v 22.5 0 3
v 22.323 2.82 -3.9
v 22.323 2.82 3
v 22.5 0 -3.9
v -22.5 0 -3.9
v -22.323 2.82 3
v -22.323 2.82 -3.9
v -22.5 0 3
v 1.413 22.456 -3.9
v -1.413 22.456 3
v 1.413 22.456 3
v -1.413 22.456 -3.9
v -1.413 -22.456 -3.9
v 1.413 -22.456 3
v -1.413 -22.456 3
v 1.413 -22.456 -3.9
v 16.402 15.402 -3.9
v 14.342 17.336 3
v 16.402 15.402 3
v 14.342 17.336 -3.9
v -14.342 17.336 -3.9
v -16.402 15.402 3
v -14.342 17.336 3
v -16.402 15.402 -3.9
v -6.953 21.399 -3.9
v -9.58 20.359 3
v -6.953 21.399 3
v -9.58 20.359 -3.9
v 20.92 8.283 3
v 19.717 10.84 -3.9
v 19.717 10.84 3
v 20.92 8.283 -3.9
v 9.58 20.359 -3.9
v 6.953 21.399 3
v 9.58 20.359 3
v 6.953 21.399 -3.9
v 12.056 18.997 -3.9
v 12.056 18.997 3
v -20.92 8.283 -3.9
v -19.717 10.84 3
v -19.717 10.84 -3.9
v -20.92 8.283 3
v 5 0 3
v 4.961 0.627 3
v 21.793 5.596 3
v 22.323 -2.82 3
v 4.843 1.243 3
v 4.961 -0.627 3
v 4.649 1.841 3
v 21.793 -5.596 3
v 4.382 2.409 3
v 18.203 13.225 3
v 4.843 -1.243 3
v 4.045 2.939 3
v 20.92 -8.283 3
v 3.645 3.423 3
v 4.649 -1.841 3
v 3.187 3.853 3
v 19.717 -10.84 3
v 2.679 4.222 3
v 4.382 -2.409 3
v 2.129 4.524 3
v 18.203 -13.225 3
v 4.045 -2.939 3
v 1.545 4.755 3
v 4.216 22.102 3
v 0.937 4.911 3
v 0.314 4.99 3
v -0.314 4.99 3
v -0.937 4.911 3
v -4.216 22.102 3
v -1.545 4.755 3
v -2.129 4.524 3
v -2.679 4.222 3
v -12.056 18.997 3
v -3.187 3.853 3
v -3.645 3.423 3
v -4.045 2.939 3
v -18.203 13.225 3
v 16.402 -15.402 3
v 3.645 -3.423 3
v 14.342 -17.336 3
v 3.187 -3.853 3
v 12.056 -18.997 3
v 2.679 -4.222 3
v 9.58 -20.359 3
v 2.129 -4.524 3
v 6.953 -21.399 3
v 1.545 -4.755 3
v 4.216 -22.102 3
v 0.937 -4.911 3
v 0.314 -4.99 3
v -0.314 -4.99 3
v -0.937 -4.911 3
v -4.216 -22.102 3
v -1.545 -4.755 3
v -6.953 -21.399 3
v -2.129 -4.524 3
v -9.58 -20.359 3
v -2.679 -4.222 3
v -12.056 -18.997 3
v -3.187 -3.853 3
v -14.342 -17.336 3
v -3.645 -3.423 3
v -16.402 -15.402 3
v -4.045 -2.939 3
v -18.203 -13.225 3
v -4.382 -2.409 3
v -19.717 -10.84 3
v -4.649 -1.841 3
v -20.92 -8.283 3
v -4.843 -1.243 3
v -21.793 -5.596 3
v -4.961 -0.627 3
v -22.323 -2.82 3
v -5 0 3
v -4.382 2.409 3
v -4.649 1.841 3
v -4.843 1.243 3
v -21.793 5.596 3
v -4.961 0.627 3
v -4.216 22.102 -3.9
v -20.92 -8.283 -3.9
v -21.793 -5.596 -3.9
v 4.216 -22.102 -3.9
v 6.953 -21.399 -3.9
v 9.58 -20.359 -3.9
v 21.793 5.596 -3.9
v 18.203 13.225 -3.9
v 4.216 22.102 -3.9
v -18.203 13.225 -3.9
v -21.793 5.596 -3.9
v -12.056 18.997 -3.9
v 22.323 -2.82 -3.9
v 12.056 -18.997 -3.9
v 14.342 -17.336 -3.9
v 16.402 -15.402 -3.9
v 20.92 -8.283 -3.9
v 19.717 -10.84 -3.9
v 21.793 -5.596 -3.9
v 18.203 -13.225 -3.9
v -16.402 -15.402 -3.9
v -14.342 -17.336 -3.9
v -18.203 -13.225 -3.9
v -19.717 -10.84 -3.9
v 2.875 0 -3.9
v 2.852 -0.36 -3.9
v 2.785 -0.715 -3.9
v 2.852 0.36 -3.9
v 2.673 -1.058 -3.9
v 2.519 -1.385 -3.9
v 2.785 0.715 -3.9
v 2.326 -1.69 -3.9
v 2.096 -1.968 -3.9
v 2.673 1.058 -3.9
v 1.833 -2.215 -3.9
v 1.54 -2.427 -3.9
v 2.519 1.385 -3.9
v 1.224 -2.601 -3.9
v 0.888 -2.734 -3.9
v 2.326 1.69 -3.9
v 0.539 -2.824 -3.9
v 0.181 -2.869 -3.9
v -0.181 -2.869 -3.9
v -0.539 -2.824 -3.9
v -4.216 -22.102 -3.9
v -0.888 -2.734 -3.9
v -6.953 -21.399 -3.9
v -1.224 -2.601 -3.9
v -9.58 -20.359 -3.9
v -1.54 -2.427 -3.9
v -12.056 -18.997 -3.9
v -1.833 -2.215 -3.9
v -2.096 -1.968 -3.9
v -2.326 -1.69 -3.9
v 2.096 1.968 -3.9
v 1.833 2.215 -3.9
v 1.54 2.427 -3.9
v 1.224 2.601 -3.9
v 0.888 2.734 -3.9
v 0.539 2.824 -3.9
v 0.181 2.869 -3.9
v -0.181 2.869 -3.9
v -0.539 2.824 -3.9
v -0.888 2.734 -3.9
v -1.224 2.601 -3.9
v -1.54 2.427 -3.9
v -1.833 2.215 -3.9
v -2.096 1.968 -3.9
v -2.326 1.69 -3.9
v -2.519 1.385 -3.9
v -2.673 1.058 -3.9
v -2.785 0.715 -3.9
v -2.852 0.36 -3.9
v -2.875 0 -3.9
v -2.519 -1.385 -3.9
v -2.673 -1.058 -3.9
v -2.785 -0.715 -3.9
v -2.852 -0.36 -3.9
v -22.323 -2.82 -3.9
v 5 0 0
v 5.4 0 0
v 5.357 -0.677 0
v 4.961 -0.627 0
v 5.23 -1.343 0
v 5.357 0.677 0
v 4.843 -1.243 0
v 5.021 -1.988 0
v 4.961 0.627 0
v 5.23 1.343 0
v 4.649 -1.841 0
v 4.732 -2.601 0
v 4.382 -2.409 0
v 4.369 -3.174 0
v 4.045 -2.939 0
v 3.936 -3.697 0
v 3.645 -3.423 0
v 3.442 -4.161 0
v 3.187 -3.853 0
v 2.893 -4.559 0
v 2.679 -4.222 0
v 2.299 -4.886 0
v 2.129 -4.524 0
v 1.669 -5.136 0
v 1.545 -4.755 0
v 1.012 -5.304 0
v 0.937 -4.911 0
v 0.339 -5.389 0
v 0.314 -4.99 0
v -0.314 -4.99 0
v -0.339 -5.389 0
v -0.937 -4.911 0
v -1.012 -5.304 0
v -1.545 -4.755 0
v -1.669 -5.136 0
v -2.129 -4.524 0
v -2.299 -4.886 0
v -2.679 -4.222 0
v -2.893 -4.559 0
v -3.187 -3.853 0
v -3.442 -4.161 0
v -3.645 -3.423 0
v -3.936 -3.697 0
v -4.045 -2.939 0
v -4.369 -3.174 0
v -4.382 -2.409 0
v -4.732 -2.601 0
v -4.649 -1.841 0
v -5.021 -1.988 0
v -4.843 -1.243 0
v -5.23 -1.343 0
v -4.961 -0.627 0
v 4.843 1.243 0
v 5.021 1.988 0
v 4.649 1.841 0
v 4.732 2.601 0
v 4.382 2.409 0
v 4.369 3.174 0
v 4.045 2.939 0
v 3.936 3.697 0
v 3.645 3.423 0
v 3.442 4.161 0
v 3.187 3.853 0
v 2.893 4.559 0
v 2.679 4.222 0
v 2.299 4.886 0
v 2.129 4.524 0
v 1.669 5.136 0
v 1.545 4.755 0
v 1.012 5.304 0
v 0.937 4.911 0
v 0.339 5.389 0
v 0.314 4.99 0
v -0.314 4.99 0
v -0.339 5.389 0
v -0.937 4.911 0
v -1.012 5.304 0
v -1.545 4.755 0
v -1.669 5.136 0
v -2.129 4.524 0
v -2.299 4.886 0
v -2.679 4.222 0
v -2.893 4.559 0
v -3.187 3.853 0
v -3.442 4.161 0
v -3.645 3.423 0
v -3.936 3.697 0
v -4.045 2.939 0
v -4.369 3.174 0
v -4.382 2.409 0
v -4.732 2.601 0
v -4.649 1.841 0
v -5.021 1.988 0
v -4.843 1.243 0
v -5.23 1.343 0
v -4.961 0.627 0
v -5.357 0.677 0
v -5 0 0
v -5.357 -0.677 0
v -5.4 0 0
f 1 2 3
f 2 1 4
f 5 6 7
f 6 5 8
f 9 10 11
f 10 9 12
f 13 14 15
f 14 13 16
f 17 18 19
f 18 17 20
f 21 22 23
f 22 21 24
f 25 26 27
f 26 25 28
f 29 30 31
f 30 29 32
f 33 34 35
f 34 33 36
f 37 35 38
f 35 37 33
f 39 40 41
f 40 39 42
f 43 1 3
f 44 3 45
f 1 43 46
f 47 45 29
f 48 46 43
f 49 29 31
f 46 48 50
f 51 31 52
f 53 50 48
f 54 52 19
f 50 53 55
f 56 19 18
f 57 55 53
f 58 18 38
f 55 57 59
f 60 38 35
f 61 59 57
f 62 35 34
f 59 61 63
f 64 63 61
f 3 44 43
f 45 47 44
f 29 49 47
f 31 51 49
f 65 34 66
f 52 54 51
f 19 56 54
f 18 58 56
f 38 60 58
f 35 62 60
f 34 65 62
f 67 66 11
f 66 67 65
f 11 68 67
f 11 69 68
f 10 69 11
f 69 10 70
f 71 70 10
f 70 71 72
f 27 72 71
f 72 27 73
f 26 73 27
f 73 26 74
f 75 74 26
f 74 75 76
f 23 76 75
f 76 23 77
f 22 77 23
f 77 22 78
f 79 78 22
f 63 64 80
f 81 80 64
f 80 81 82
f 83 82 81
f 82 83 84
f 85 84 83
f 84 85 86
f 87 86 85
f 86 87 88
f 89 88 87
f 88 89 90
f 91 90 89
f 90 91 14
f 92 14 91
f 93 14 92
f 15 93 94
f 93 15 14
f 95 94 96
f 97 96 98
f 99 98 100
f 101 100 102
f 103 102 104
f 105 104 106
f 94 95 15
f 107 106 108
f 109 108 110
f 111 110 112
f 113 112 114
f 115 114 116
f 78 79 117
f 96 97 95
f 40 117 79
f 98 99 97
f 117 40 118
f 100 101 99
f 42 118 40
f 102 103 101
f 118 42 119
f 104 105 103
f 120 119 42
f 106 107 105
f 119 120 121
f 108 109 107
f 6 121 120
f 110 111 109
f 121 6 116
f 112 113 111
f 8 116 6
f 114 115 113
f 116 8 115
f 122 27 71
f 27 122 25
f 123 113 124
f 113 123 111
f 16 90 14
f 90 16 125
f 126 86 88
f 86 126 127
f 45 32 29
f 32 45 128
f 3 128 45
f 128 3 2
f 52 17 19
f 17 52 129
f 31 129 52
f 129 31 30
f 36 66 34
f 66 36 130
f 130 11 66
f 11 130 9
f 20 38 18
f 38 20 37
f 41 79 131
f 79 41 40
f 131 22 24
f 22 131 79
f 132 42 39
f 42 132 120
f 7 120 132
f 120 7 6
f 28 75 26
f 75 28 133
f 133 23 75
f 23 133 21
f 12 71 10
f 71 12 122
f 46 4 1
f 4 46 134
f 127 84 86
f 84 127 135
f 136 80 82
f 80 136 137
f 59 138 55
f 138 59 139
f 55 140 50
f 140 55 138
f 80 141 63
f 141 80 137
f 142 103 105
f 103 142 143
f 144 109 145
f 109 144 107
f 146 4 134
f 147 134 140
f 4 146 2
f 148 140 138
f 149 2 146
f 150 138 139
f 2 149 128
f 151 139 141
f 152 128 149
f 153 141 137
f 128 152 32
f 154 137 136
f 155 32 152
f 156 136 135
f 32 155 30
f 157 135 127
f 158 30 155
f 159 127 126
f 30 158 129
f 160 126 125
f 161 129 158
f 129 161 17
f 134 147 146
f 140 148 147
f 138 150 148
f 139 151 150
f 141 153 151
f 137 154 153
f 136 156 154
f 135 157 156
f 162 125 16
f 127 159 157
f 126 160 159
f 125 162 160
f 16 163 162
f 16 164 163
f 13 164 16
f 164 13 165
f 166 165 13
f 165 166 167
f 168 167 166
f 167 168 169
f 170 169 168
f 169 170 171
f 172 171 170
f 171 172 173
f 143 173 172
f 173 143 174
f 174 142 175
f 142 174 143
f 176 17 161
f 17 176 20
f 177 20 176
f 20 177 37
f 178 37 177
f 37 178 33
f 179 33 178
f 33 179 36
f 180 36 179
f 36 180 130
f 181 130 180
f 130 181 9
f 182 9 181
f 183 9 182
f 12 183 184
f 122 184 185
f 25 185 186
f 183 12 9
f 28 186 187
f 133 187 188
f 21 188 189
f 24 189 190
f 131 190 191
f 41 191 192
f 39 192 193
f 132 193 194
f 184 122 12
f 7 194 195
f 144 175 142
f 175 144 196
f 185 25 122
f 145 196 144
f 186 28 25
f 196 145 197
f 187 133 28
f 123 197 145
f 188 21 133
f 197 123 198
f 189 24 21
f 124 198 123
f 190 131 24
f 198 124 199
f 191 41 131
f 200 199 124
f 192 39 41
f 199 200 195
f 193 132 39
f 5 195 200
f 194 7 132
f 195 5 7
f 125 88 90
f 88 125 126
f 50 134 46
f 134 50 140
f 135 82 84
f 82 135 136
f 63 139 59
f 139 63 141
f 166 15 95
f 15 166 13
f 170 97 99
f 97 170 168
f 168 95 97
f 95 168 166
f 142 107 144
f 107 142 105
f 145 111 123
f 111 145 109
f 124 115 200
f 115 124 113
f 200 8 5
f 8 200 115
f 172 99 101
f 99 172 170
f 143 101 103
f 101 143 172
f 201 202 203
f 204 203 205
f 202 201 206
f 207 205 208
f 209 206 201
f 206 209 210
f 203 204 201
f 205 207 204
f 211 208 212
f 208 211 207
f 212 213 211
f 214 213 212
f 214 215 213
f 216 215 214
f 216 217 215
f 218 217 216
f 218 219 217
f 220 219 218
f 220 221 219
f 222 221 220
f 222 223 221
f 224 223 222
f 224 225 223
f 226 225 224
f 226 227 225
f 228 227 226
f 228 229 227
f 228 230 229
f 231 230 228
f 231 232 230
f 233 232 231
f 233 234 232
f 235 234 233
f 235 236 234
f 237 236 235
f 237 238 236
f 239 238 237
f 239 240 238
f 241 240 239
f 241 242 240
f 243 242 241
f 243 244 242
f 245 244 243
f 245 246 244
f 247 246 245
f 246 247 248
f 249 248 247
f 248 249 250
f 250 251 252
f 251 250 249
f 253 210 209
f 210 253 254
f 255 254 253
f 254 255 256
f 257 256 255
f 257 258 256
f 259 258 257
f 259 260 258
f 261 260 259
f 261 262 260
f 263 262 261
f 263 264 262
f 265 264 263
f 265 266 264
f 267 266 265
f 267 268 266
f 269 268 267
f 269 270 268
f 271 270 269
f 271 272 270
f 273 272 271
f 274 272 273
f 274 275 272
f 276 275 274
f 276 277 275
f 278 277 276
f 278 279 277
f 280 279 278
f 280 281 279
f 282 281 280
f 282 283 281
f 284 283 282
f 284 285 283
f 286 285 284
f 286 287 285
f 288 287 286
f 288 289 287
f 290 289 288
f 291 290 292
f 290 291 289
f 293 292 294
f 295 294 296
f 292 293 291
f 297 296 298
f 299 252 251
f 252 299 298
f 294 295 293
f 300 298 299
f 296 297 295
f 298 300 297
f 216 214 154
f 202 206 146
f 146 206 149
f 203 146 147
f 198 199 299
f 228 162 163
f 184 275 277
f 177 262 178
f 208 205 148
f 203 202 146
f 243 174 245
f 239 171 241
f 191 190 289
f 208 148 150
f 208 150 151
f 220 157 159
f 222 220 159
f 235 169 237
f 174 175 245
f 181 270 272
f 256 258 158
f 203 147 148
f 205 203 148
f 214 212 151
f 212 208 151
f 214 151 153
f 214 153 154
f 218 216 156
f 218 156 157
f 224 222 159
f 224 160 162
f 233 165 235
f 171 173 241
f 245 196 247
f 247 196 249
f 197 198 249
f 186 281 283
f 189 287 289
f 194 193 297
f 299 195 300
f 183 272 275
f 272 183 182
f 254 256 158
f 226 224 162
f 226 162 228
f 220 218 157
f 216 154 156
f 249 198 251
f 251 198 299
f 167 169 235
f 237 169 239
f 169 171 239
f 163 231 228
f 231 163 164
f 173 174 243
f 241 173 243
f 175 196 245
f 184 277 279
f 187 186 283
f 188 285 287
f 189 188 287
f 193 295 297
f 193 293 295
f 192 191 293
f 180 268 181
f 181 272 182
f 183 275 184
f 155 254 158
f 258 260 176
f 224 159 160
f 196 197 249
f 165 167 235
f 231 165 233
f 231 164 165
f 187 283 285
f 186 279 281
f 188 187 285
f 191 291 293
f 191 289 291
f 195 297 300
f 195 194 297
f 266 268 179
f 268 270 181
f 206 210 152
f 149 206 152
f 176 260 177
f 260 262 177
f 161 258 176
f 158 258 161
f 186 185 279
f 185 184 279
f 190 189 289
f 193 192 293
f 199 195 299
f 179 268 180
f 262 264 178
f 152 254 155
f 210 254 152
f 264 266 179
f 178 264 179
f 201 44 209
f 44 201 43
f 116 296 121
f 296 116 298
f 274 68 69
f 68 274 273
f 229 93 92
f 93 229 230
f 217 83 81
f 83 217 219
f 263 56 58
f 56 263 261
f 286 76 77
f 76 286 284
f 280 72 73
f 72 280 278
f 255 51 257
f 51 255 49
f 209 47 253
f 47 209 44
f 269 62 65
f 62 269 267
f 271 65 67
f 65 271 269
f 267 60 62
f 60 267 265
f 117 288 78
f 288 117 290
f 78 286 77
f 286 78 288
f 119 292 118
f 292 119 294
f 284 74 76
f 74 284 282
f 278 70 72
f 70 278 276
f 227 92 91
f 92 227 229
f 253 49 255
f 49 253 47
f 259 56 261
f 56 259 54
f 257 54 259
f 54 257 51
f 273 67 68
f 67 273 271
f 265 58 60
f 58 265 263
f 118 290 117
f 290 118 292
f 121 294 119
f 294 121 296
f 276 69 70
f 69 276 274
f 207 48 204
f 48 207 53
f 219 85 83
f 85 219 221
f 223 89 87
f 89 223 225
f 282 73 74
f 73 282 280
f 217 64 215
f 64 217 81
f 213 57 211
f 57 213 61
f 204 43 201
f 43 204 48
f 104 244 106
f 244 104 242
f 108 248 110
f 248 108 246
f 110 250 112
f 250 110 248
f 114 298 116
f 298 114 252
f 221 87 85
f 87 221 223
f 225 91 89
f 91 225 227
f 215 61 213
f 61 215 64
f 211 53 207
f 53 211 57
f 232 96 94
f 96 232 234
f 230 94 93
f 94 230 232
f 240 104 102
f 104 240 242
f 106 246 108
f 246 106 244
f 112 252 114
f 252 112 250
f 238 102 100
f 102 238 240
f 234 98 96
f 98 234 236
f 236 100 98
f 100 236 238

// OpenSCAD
$fn = 50;

difference() {
	union() {
		translate(v = [0, 0, -3.9000000000000004]) {
			cylinder(h = 6.9, r = 22.5);
		}
		#translate(v = [0, 0, -6.9]) {
			cylinder(h = 6.9, r = 2.875);
		}
	}
	union() {
		translate(v = [0, 0, 0]) {
			rotate(a = [0, 0, 0]) {
				difference() {
					union() {
						translate(v = [0, 0, -6.9]) {
							cylinder(h = 6.9, r = 2.6);
						}
						translate(v = [0, 0, -3.9]) {
							cylinder(h = 3.9, r1 = 2.875, r2 = 5.4);
						}
						translate(v = [0, 0, -6.9]) {
							cylinder(h = 6.9, r = 2.875);
						}
						translate(v = [0, 0, -6.9]) {
							cylinder(h = 6.9, r = 2.6);
						}
					}
					union();
				}
			}
		}
		#cylinder(h = 3, r = 5.0);
	}
}
